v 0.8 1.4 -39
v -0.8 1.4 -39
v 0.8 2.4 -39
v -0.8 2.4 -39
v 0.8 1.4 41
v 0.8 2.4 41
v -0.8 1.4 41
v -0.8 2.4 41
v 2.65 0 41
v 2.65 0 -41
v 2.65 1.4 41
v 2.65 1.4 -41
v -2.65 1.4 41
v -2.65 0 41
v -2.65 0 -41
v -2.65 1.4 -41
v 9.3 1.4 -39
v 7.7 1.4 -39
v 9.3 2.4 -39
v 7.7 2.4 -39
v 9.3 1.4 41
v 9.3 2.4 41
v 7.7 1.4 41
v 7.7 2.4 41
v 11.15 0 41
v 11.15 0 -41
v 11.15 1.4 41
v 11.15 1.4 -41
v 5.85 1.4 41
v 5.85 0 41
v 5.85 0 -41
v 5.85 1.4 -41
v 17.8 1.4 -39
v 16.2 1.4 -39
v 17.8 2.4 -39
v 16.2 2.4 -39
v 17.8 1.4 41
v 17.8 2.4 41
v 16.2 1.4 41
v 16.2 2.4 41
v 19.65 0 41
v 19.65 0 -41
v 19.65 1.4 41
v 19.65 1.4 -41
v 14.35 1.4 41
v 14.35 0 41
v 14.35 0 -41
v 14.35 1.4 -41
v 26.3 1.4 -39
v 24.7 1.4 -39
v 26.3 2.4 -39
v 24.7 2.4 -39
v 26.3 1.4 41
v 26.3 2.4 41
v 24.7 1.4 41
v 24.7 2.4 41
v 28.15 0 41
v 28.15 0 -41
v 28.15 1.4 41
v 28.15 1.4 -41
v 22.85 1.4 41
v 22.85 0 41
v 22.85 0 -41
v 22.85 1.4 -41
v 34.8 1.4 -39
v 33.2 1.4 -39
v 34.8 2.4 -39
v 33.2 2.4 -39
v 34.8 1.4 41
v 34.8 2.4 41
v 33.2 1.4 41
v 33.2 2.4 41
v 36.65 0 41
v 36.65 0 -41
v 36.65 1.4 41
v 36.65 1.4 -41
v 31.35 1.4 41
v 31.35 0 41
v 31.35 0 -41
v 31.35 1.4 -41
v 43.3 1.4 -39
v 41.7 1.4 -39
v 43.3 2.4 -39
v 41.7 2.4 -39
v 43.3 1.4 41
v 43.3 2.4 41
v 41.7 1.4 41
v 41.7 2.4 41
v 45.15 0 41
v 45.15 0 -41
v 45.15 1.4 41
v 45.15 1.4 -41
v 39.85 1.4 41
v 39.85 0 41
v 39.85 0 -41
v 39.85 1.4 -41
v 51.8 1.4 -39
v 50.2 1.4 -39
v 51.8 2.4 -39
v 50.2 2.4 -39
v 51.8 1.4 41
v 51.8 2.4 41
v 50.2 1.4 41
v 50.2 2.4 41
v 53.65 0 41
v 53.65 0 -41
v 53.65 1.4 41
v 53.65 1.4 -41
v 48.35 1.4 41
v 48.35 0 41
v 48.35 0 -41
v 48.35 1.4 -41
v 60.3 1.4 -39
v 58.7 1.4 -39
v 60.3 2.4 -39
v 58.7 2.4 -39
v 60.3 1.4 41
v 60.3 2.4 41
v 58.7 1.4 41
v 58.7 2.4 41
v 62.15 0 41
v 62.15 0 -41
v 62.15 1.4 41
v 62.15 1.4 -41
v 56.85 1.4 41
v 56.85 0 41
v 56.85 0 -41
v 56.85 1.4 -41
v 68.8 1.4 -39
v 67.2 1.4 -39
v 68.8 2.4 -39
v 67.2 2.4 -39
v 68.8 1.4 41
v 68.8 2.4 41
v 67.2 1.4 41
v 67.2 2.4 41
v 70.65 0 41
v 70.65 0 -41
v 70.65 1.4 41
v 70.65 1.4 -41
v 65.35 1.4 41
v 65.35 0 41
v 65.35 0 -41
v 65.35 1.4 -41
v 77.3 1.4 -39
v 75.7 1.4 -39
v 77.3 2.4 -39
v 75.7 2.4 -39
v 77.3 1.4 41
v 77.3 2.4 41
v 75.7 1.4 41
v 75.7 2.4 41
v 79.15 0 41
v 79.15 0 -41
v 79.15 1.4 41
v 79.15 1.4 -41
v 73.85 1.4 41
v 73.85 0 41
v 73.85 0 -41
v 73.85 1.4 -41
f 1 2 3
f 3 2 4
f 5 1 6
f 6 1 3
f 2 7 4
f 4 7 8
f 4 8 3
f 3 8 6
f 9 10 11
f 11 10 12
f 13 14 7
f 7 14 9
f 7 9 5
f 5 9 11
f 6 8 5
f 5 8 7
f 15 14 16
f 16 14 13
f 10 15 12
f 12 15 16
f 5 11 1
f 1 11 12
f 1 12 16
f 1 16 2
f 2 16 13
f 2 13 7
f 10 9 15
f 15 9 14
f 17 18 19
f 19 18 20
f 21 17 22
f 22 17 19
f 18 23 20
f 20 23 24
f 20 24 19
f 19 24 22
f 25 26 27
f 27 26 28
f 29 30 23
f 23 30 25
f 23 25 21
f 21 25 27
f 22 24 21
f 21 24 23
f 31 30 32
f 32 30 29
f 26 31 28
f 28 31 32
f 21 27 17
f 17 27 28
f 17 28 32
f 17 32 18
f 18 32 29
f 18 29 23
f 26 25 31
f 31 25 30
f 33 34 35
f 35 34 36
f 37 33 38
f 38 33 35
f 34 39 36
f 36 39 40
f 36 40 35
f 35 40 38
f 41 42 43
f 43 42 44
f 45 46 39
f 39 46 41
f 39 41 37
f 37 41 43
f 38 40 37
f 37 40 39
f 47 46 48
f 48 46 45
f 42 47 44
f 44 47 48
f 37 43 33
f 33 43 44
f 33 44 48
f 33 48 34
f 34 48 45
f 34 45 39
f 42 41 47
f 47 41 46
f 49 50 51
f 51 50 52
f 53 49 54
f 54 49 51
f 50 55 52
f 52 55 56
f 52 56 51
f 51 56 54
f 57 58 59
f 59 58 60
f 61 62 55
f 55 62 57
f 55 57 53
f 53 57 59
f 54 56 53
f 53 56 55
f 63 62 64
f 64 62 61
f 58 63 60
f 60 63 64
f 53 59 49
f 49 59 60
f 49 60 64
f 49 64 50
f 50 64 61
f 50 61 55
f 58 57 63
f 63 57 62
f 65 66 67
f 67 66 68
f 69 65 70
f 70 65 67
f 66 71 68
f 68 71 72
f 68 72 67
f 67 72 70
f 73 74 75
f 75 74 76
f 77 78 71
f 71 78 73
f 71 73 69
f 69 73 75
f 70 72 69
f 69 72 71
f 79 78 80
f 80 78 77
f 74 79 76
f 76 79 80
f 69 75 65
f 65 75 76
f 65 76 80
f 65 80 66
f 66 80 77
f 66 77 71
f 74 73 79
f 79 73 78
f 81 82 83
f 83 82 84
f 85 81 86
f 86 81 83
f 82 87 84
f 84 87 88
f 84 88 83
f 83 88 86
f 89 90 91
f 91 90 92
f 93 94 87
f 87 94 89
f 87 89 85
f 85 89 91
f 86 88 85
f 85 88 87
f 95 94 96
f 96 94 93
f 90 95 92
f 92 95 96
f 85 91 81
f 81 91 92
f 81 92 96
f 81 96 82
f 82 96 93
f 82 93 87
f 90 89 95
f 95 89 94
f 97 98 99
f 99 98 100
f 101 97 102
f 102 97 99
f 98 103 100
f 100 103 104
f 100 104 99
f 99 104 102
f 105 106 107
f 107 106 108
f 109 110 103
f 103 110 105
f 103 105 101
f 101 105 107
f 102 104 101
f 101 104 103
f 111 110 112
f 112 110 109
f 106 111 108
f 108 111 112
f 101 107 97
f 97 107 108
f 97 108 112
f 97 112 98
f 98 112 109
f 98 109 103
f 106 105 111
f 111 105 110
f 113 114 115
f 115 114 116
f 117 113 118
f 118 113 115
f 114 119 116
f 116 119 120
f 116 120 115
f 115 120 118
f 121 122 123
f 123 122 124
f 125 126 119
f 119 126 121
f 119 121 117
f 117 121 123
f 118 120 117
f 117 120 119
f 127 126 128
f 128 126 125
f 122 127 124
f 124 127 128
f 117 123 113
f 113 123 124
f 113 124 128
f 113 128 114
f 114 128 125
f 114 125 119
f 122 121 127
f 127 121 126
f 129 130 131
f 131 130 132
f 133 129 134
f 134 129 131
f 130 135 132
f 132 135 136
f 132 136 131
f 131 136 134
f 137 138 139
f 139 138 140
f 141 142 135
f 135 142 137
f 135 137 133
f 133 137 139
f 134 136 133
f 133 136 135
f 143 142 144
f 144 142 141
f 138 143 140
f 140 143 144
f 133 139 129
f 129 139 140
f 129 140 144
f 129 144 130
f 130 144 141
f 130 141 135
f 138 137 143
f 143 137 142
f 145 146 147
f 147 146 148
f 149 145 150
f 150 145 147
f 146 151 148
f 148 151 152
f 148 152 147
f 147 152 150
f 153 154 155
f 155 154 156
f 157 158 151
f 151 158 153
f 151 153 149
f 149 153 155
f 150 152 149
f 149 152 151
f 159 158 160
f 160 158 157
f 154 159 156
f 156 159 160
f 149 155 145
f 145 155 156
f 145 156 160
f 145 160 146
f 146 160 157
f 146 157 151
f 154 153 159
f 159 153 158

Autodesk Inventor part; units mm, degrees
ref_plane "YZ Plane" through (0, 0, 0) normal (1, 0, 0) x (0, 1, 0)
ref_plane "XZ Plane" through (0, 0, 0) normal (0, 1, 0) x (-1, 0, 0)
ref_plane "XY Plane" through (0, 0, 0) normal (0, 0, 1) x (1, 0, 0)
sketch "Sketch1" plane through (0, 0, 0) normal (0, 1, 0) x (-1, 0, 0)
  line L0 (2.65, -41) -> (-2.65, -41)
  line L1 (-2.65, -41) -> (-2.65, 41)
  line L2 (-2.65, 41) -> (2.65, 41)
  line L3 (2.65, 41) -> (2.65, -41)
  line L4 (2.65, -41) -> (-2.65, 41) construction
  line L5 (-2.65, -41) -> (2.65, 41) construction
  line L6 (-1.2752, 41) -> (1.1507, 41)
  line L7 (1.1507, 41) -> (1.1507, 41)
  line L8 (1.1507, 41) -> (-1.2752, 41)
  line L9 (-1.2752, 41) -> (-1.2752, 41)
  point P0 (0, 0)
  dimension "d0" = 5.3
  dimension "d1" = 82
extrude "Extrusion1" add sketch "Sketch1" along normal blind 1.4
sketch "Sketch2" plane through (0, 1.4, 0) normal (0, 1, 0) x (1, 0, 0)
  line L0 (-2.65, -41) -> (2.65, -41) projected
  line L1 (0.8, -41) -> (-0.8, -41)
  line L2 (-0.8, -41) -> (-0.8, 39)
  line L3 (-0.8, 39) -> (0.8, 39)
  line L4 (0.8, 39) -> (0.8, -41)
  line L5 (2.65, -41) -> (2.65, 41) projected
  line L6 (-2.65, 41) -> (-2.65, -41) projected
  point P0 (0, 0)
  dimension "d4" = 80
  dimension "d5" = 1.6
  dimension "d6" = 5.3
  dimension "d7" = 1.85
extrude "Extrusion2" add sketch "Sketch2" along normal blind 1
pattern_linear "Rectangular Pattern1" count 10 spacing 8.5 along (1, 0, 0) of "Extrusion1", "Extrusion2"
equation "\"d7\" = 0.5 * d6 - 0.5 * d5"
equation "\"base_add\" = 0.9"
properties part number "structure2"
